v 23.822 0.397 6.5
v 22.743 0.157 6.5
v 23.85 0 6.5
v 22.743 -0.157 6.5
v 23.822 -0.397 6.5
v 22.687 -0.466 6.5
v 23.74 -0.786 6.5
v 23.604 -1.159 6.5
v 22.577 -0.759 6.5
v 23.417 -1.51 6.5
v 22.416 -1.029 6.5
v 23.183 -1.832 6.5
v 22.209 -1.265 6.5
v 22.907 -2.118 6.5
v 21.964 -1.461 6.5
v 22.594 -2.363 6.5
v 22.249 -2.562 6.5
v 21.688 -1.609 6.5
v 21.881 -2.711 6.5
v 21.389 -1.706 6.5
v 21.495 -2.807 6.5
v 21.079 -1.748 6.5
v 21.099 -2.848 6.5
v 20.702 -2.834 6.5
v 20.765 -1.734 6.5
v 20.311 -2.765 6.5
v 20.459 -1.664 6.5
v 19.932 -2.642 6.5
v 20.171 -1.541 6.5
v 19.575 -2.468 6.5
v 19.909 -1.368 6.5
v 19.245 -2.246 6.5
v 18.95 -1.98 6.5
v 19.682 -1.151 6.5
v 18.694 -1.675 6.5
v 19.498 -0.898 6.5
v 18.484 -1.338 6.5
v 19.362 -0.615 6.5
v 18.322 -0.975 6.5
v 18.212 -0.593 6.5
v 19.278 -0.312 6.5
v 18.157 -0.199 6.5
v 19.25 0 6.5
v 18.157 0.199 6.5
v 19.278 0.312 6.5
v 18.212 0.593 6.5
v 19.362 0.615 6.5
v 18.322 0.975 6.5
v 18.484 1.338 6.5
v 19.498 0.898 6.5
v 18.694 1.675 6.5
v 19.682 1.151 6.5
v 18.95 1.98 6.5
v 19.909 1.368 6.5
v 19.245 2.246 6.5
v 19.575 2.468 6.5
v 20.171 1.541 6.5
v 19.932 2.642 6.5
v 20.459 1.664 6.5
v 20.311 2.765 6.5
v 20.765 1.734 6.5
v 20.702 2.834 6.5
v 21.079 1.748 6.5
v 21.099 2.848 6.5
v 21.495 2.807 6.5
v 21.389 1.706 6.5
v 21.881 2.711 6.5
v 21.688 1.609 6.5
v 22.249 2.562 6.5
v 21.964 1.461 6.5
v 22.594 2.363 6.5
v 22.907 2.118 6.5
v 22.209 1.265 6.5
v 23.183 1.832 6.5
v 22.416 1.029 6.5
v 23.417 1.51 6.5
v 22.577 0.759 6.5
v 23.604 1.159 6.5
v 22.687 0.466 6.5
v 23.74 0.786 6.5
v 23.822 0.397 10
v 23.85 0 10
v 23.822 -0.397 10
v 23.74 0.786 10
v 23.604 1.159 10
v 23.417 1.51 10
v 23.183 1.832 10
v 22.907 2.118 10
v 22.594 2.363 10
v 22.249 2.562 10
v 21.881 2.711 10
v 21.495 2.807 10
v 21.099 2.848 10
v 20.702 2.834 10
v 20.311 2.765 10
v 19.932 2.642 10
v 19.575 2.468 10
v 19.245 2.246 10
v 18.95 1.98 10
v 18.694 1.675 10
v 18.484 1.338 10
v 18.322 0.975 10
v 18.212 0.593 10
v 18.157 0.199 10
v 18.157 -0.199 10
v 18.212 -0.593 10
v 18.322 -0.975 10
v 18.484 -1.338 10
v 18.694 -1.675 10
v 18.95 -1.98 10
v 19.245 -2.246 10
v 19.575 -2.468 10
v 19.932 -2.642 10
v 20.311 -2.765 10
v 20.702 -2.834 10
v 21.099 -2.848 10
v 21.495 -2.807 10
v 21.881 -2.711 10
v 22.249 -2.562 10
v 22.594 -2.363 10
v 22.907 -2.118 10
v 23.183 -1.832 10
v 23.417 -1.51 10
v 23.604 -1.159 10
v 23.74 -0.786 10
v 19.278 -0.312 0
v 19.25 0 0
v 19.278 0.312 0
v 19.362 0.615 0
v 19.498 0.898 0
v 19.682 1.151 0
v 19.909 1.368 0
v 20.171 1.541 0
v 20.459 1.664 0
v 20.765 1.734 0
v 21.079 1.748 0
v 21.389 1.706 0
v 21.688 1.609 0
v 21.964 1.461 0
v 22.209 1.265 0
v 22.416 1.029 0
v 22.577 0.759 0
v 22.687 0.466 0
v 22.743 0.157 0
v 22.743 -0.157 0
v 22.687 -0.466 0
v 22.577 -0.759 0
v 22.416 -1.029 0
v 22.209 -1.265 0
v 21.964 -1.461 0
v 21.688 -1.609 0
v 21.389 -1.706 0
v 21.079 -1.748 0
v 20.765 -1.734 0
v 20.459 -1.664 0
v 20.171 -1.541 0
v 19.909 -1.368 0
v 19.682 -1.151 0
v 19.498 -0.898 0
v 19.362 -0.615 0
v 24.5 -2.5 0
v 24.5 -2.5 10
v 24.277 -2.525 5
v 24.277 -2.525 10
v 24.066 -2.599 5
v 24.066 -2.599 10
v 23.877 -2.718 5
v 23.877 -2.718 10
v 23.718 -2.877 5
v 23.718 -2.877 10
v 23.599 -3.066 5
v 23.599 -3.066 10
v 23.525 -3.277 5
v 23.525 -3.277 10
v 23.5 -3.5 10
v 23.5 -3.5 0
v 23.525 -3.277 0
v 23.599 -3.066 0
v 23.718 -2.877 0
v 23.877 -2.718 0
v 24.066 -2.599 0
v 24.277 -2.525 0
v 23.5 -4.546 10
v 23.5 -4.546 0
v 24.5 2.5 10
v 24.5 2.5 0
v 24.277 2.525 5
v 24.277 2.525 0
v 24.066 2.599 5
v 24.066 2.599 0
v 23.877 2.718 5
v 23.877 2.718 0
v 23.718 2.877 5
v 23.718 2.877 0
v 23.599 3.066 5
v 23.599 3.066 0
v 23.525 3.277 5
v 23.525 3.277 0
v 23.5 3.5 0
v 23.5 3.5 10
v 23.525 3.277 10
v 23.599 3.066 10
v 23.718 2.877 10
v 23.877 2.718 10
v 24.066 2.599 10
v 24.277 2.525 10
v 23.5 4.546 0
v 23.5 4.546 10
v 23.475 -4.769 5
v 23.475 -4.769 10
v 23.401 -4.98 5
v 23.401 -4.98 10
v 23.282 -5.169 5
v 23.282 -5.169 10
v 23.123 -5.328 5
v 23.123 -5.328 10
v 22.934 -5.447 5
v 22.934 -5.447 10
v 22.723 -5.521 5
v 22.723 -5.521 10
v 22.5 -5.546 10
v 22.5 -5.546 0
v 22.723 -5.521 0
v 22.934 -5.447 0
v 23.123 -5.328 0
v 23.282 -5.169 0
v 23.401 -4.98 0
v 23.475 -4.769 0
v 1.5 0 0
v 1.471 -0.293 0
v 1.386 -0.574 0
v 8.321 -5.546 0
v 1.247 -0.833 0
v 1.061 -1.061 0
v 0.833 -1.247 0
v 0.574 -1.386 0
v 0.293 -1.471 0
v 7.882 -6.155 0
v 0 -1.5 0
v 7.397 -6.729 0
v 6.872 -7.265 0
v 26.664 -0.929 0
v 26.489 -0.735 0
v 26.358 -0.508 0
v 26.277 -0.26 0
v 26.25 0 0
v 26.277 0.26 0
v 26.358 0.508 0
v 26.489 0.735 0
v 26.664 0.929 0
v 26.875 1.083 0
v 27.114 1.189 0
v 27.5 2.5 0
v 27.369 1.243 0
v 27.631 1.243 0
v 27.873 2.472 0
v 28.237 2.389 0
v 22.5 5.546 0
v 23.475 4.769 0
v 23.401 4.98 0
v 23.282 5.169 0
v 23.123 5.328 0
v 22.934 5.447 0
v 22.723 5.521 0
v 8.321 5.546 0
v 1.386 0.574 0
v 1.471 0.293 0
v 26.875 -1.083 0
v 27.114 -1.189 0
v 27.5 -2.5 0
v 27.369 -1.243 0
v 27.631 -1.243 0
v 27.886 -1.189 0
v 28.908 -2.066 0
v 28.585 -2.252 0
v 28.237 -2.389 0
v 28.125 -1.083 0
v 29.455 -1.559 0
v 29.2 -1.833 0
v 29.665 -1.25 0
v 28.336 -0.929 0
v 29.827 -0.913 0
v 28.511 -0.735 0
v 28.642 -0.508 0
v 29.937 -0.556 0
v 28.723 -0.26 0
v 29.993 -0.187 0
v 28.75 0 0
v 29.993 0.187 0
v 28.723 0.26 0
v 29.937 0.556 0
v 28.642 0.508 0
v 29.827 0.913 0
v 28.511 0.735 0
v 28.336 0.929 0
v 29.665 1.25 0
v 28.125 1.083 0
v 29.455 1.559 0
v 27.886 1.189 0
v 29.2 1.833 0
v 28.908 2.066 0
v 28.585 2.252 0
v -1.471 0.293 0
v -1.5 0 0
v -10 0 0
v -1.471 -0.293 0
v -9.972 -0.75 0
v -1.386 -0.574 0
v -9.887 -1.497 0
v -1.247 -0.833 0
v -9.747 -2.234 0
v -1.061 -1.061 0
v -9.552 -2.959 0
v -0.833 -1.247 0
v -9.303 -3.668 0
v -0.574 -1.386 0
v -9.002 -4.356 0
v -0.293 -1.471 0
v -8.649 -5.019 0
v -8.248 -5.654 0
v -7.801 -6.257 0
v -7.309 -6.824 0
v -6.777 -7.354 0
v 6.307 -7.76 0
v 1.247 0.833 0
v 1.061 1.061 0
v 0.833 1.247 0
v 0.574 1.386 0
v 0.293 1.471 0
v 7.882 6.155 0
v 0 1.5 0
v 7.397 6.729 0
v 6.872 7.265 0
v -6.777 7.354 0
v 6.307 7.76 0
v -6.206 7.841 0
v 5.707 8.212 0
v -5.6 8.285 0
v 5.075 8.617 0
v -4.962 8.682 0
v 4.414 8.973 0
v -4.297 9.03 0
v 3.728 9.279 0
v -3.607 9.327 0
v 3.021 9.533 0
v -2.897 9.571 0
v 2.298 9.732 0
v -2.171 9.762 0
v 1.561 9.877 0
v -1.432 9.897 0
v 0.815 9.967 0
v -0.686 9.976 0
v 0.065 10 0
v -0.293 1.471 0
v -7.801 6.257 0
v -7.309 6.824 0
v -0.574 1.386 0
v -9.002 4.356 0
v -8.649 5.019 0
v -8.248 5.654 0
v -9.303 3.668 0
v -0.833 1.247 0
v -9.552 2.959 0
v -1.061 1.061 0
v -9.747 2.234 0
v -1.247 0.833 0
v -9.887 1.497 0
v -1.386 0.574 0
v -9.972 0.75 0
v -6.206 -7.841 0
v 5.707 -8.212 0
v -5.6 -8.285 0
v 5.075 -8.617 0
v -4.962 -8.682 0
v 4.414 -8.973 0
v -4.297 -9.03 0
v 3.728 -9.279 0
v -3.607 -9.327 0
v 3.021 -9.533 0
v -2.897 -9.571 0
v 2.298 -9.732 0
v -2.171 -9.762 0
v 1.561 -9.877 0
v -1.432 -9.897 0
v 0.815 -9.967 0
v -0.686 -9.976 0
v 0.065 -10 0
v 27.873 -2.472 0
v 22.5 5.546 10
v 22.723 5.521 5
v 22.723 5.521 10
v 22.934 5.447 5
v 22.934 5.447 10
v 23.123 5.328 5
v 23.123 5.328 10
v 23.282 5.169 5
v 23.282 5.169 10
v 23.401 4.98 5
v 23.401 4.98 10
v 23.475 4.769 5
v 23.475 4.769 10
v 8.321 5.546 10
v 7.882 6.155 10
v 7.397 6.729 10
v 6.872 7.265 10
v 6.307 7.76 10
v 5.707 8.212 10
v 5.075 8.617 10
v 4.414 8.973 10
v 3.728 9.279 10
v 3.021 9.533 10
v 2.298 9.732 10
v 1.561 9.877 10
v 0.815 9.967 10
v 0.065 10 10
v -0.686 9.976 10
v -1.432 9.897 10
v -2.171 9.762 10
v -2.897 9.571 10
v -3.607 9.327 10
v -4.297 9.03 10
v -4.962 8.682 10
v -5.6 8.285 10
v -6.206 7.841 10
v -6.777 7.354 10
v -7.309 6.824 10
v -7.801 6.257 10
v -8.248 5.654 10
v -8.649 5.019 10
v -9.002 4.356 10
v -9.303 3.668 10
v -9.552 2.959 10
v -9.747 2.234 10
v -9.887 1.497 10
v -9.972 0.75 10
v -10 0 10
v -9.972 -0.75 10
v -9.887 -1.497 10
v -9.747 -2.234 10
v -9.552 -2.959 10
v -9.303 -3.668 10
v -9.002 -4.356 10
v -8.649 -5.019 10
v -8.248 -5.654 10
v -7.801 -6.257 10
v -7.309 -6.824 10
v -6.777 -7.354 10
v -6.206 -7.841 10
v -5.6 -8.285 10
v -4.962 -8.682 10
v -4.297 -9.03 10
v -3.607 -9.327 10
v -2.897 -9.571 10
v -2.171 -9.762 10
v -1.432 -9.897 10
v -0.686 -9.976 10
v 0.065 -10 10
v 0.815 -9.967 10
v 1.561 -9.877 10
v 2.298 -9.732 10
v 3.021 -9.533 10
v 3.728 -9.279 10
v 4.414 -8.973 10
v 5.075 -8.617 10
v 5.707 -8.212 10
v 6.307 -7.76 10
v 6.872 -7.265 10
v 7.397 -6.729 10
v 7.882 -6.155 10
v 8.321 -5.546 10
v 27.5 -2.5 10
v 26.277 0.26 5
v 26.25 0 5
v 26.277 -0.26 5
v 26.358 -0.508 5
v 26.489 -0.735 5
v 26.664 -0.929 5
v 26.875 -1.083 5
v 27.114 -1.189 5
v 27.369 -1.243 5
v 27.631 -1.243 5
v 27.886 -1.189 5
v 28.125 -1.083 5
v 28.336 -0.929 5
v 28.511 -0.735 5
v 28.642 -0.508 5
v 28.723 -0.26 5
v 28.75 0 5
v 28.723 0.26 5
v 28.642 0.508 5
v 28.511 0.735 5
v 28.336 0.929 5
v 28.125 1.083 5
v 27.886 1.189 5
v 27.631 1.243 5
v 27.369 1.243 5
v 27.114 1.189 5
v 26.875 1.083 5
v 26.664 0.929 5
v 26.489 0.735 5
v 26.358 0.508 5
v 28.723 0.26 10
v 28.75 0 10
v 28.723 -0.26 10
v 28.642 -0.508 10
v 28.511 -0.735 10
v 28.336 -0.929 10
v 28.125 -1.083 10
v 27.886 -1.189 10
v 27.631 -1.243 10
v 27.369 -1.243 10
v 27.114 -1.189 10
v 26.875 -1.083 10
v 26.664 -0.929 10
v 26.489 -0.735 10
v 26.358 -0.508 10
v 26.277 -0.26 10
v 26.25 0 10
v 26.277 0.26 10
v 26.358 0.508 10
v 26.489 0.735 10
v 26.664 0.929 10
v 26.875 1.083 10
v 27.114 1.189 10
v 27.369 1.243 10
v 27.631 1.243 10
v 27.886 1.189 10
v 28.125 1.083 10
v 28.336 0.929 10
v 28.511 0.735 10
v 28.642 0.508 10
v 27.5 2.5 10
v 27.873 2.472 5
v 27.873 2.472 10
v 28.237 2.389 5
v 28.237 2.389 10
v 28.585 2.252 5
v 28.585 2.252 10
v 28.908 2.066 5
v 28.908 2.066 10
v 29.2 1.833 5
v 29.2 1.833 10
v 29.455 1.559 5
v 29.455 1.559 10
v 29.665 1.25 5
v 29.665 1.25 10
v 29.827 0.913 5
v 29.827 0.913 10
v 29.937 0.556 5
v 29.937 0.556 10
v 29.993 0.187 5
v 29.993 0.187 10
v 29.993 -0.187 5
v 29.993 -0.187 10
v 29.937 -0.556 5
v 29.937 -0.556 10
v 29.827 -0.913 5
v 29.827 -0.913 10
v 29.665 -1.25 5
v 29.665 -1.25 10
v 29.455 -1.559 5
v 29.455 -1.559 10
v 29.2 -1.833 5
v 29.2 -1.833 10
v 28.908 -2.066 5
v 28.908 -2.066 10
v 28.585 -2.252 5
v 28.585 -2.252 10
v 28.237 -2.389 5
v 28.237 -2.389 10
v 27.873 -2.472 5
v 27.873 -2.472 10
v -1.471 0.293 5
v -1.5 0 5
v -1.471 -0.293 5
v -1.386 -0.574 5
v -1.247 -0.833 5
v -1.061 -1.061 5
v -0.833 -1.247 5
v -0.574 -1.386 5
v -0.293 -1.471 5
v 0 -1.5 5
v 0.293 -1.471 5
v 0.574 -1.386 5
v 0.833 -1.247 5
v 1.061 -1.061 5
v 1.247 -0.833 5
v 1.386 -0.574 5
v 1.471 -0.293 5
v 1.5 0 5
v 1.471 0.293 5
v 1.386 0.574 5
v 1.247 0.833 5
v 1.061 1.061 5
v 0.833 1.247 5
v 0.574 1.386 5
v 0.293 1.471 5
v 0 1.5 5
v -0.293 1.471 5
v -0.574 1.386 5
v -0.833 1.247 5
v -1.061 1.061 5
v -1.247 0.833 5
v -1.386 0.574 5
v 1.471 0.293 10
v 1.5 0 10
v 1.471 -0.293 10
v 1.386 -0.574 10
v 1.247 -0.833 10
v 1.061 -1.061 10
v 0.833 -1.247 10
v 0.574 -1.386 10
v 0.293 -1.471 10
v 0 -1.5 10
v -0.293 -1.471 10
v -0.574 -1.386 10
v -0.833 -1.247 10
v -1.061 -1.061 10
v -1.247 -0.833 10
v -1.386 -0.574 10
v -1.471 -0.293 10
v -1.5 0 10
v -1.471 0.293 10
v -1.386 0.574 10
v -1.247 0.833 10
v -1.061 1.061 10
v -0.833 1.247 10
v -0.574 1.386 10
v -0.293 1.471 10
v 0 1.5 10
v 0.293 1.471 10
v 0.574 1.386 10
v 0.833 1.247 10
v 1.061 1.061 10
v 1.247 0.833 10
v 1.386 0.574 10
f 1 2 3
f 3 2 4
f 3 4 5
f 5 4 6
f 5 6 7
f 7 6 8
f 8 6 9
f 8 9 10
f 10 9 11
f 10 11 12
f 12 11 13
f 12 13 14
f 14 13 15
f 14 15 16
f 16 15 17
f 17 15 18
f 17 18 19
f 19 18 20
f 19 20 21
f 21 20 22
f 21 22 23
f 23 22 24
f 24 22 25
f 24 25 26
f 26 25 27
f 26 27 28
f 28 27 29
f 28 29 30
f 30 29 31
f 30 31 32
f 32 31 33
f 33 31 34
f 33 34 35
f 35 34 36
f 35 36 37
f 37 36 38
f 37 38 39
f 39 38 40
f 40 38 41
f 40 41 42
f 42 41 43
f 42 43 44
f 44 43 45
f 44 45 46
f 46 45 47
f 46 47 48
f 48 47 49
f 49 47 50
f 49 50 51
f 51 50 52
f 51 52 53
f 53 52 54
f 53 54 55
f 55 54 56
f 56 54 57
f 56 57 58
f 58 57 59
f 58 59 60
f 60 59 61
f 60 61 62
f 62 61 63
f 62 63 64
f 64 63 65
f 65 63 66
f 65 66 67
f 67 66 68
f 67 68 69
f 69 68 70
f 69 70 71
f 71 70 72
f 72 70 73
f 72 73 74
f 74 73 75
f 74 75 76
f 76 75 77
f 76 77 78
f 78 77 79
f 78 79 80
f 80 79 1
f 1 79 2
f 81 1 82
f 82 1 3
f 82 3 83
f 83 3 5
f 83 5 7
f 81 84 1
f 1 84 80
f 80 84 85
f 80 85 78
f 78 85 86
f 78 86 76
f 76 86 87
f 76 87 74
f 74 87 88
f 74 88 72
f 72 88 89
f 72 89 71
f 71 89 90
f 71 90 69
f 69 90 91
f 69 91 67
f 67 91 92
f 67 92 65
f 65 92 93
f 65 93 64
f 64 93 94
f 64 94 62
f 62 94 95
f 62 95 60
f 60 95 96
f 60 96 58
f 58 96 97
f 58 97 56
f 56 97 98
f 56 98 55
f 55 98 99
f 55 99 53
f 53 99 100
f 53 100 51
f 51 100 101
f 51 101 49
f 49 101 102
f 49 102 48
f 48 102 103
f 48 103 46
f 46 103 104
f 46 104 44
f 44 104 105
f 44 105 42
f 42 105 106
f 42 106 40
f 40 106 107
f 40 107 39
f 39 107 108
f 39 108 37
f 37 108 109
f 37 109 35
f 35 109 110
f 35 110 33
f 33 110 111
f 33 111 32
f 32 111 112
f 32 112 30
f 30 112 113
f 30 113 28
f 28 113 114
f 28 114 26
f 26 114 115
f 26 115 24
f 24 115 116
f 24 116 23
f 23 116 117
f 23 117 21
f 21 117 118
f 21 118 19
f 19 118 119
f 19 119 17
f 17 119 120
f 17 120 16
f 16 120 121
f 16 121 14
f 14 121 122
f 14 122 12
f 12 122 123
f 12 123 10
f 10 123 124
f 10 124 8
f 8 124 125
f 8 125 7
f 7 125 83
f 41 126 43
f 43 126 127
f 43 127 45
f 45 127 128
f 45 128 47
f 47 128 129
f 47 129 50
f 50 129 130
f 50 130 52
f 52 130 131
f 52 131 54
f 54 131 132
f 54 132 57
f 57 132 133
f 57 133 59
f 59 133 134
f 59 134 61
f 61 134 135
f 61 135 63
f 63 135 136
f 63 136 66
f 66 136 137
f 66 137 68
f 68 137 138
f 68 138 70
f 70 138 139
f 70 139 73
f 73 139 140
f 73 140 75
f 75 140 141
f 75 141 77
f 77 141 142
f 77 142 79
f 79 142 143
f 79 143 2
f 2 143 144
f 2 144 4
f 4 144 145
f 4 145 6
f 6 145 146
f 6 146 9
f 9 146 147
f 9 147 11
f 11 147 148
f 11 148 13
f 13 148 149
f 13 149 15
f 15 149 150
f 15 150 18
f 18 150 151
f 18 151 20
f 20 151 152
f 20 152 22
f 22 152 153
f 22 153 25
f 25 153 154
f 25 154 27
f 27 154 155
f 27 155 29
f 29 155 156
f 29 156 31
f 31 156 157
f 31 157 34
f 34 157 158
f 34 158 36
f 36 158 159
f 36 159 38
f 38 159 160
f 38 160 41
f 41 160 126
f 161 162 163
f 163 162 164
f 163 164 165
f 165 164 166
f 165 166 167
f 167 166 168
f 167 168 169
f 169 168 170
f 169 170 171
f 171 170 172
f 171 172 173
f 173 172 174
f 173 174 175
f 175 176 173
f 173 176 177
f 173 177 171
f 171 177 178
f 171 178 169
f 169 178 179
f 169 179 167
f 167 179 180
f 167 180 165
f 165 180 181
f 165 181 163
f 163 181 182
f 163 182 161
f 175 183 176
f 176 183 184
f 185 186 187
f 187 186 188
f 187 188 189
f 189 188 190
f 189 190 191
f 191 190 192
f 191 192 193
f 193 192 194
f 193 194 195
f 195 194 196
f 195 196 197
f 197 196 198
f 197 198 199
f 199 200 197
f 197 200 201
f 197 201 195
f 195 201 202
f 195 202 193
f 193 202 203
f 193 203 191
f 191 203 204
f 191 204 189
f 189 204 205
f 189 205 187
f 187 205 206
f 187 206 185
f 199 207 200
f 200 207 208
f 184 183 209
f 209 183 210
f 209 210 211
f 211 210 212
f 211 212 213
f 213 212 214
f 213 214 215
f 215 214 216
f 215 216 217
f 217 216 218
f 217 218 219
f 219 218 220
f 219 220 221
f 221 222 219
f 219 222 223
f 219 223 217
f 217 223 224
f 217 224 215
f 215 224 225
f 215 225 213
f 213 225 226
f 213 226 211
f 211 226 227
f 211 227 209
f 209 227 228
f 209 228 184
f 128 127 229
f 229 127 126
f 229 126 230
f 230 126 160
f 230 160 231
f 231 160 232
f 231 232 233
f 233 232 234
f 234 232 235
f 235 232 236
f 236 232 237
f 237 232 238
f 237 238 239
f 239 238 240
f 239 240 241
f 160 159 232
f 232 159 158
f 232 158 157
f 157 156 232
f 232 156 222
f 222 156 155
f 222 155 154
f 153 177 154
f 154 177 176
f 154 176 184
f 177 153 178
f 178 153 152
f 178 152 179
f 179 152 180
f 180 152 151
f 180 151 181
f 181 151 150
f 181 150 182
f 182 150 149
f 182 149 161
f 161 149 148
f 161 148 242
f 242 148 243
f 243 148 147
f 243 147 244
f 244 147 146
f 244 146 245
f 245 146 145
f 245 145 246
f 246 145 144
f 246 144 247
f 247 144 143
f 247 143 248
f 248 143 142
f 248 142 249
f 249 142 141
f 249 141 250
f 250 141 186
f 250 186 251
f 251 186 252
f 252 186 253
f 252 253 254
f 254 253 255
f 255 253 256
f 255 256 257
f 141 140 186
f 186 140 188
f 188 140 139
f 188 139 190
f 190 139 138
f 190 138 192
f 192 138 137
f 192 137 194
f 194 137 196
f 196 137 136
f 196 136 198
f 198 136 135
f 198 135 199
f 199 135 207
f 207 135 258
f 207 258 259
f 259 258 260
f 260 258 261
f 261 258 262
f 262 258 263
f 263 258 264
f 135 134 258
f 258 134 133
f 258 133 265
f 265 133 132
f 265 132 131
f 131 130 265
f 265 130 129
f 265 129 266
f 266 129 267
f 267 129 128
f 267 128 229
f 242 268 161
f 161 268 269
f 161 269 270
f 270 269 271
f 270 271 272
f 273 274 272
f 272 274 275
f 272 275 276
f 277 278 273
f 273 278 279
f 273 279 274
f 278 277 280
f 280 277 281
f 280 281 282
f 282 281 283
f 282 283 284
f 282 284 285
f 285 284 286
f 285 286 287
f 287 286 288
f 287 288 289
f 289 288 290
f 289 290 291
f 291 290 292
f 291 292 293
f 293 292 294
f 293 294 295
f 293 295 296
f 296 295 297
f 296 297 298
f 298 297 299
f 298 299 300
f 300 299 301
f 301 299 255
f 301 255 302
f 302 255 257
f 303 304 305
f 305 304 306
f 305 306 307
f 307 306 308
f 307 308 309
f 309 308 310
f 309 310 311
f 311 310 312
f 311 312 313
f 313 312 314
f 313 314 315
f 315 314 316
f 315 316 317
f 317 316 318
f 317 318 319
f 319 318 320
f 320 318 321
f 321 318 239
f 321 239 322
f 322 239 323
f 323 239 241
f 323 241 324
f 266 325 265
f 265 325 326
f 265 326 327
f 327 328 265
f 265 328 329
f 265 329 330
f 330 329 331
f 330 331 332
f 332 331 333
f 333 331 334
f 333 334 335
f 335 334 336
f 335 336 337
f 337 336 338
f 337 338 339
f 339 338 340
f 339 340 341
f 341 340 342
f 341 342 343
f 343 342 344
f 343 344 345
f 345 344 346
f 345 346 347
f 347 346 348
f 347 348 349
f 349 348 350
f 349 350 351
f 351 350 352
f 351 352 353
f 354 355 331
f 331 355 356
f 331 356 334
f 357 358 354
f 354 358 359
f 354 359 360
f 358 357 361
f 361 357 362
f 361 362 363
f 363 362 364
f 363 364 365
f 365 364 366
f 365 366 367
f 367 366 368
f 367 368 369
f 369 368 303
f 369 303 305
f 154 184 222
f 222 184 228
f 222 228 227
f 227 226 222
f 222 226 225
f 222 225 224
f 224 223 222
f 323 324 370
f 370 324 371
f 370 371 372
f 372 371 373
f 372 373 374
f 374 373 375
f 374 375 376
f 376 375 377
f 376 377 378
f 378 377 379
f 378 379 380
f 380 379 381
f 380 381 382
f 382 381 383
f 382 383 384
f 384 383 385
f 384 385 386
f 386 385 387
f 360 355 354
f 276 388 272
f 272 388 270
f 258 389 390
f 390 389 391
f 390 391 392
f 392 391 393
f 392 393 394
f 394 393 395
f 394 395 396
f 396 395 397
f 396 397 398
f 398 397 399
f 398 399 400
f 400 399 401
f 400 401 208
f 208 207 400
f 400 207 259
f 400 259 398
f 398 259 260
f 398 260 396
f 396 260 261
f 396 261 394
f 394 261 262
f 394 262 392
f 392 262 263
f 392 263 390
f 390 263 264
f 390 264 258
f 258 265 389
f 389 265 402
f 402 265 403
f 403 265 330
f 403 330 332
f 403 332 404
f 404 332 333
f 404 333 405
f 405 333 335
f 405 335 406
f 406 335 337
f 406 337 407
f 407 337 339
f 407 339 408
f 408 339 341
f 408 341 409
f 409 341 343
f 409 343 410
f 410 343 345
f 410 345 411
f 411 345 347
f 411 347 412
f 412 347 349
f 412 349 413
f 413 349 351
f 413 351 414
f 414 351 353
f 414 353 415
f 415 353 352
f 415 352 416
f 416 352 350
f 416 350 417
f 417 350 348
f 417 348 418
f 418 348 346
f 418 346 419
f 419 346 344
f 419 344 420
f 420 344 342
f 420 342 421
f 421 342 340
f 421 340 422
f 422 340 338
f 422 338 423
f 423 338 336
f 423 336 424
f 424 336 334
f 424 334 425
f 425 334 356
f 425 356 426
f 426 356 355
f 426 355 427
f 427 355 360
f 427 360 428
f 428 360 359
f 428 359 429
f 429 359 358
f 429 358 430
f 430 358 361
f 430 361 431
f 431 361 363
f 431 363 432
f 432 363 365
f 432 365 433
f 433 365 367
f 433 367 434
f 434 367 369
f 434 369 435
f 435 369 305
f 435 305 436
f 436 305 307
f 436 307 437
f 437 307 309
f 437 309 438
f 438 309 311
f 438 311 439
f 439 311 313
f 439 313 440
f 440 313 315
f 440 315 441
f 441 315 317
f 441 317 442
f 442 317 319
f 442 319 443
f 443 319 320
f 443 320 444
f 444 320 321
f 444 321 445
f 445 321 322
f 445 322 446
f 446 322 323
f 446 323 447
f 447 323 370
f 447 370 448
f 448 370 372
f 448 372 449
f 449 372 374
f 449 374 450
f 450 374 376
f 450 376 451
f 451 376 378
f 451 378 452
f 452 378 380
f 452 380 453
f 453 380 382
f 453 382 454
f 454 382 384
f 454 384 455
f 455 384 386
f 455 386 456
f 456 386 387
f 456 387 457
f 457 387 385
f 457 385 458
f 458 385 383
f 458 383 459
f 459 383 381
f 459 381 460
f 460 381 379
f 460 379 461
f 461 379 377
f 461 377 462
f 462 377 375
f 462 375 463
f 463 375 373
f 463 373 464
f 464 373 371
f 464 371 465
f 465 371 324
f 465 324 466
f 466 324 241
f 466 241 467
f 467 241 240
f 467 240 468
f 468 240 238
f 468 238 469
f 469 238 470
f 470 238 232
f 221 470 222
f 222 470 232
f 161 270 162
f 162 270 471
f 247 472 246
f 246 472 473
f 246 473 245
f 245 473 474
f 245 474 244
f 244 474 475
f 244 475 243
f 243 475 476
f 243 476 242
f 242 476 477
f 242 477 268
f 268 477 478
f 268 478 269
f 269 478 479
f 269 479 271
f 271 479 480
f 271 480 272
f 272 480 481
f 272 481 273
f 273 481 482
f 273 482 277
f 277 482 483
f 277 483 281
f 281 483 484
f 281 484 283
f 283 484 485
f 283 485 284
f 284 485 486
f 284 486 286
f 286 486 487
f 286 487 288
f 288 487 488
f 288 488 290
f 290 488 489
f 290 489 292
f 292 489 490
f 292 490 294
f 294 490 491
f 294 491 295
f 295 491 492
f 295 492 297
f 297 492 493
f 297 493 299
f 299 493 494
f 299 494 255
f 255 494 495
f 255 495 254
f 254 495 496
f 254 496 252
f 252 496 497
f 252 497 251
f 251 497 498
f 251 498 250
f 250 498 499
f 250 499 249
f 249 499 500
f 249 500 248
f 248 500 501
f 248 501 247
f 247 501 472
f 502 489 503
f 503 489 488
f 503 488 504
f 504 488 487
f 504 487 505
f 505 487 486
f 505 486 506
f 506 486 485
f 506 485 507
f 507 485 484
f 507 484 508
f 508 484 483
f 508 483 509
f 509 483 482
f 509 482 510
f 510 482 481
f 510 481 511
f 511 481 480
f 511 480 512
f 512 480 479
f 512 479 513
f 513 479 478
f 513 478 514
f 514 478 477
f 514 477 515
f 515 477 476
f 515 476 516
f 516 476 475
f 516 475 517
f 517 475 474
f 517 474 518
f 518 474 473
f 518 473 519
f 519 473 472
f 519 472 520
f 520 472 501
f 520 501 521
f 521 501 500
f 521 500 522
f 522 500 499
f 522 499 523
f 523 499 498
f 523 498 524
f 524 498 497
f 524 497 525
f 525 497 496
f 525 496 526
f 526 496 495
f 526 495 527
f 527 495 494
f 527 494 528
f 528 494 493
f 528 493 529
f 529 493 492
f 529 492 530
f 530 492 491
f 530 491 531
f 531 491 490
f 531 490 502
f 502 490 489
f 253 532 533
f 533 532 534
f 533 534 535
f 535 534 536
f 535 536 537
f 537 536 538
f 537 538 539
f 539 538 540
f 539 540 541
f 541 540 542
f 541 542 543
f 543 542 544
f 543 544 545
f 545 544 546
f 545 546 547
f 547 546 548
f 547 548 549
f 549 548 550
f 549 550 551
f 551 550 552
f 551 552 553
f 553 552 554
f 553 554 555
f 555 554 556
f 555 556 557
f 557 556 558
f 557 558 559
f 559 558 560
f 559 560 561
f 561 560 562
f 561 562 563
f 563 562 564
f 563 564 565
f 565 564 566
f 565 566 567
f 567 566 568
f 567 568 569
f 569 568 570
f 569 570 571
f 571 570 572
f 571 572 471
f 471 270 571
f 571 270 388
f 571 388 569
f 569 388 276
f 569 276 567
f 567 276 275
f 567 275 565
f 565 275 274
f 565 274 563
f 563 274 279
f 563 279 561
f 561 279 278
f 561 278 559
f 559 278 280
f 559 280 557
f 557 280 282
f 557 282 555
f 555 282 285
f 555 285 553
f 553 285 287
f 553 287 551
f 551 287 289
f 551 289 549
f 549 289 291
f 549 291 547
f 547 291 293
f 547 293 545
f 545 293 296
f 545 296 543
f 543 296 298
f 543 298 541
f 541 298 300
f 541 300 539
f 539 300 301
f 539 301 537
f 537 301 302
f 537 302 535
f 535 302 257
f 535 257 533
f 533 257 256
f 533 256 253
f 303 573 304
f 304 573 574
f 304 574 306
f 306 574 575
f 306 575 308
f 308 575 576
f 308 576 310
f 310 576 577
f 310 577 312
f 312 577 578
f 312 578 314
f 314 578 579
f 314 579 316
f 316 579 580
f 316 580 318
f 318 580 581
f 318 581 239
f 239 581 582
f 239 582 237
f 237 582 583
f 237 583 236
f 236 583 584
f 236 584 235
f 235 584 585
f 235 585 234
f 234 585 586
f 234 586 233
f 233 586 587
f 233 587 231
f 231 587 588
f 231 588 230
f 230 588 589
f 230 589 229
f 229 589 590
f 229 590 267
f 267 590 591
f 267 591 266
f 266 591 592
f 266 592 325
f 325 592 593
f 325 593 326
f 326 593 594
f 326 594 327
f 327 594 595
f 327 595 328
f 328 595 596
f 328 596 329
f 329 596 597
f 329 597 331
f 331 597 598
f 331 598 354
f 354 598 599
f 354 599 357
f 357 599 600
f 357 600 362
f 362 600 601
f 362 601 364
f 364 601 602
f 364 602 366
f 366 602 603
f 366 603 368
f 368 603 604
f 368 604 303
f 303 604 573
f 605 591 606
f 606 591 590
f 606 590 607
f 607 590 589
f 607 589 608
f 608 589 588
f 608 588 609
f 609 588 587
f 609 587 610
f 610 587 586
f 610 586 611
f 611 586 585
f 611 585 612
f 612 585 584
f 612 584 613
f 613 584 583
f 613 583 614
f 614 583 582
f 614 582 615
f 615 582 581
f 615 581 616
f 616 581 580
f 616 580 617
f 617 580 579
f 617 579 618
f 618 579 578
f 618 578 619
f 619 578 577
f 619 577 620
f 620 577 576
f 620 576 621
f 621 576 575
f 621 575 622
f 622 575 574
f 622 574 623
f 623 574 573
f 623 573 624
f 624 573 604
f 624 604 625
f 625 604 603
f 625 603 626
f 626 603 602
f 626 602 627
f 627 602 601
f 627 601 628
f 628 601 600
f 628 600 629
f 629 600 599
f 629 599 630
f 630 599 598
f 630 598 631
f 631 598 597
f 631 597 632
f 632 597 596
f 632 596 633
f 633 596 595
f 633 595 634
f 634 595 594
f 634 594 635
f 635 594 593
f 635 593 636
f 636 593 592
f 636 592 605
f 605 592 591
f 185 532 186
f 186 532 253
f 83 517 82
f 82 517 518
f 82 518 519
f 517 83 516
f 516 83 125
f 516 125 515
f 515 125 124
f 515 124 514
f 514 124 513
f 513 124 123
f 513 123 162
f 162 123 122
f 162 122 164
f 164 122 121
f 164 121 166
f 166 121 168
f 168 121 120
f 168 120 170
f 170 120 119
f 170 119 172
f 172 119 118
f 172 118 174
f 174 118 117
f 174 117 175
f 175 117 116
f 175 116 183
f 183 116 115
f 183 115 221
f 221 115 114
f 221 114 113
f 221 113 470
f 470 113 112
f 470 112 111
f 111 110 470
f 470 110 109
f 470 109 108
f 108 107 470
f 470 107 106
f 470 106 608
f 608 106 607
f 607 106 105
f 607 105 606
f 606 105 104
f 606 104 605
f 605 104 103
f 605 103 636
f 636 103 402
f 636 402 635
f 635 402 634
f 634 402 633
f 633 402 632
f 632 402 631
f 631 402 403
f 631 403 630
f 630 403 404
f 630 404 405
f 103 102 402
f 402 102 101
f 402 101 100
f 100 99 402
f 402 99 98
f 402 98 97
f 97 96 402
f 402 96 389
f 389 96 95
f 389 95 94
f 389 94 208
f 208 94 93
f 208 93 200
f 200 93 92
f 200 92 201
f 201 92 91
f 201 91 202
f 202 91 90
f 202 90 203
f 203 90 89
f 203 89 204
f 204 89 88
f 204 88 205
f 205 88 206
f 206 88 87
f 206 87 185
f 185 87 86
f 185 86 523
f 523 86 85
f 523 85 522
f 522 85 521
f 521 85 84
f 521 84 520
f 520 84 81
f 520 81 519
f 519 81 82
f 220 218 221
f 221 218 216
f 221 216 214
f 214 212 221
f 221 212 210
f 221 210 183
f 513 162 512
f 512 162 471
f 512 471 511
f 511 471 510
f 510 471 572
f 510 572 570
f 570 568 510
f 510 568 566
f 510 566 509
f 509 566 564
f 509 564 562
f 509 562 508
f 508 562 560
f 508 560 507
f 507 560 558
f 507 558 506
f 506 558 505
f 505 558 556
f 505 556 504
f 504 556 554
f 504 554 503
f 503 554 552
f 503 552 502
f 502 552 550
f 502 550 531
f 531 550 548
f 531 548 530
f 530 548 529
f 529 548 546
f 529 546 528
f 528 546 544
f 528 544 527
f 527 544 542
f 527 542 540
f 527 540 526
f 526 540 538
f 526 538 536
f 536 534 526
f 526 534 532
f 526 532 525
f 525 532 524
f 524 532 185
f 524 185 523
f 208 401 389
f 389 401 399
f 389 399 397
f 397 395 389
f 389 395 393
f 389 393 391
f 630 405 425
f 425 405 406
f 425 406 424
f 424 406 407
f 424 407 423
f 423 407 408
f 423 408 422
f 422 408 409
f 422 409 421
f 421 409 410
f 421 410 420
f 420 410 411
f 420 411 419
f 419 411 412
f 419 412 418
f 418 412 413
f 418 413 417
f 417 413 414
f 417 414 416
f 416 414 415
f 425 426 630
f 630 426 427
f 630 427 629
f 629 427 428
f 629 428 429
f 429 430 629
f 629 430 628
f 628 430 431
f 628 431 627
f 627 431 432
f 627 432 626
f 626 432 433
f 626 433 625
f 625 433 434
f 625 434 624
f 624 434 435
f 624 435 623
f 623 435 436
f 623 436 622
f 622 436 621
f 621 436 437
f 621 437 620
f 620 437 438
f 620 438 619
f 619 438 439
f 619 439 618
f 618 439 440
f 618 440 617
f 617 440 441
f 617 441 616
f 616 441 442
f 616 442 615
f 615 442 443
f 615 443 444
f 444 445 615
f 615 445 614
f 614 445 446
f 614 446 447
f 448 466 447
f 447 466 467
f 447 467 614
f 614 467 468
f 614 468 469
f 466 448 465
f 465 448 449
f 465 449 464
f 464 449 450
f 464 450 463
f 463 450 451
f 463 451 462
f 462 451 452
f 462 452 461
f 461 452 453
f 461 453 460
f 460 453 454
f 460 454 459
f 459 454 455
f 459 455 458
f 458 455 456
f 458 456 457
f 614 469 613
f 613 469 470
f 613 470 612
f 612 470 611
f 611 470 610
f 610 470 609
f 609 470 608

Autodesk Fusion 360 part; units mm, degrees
sketch "Sketch1" plane through (0, 0, 0) normal (0, 0, 1) x (1, 0, 0)
  circle A0 centre (0, 0) radius 10
extrude "Extrude1" add sketch "Sketch1" along normal blind 10
sketch "Sketch2" plane through (0, 0, 0) normal (0, 0, -1) x (1, 0, 0)
  circle A0 centre (0, 0) radius 10
  line L0 (0, 2.5) -> (30, 2.5)
  line L1 (30, 2.5) -> (30, -2.5)
  line L2 (30, -2.5) -> (0, -2.5)
  line L3 (0, -2.5) -> (0, 2.5)
  line L4 (0, 2.5) -> (30, -2.5) construction
  line L5 (30, 2.5) -> (0, -2.5) construction
  line L6 (15, 0) -> (0, 0) construction
  point P0 (15, 0)
  dimension "d19" = 5
  dimension "d20" = 30
extrude "Extrude2" add sketch "Sketch2" against normal up to surface (10 mm away) contours A0 L0 L1 L2
hole "Hole1" at (0, 0, 10) direction (0, 0, -1) diameter 3 end through all
fillet "Fillet1" radius 2.5 2 edges at (30, -2.5, 5) (30, 2.5, 5)
hole "Hole2" at (27.5, 0, 10) direction (0, 0, -1) diameter 2.5 end through all
sketch "Sketch4" plane through (0, 0, 0) normal (0, 0, -1) x (1, 0, 0)
  circle A0 centre (27.5, 0) radius 1.25
  circle A1 centre (0, 0) radius 1.5
  arc A2 (27.5, -2.5) -> (27.5, 2.5) centre (27.5, 0) ccw
  line L0 (27.5, 2.5) -> (9.6825, 2.5)
  arc A3 (9.6825, 2.5) -> (9.6825, -2.5) centre (0, 0) ccw
  line L1 (9.6825, -2.5) -> (27.5, -2.5)
  line L2 (1.5, 5.546) -> (23.5, 5.546)
  line L3 (23.5, 5.546) -> (23.5, -5.546)
  line L4 (23.5, -5.546) -> (1.5, -5.546)
  line L5 (1.5, -5.546) -> (1.5, 5.546)
  line L6 (1.5, 5.546) -> (23.5, -5.546) construction
  line L7 (23.5, 5.546) -> (1.5, -5.546) construction
  line L8 (12.5, 0) -> (23.5, 0) construction
  point P0 (12.5, 0)
  dimension "d35" = 4
extrude "Extrude4" add sketch "Sketch4" against normal up to surface (10 mm away) contours A3 L1 L3 L4 | L0 A3 L2 L3
sketch "Sketch6" plane through (0, 0, 10) normal (0, 0, 1) x (-1, 0, 0)
  line L0 (-23.5, 5.546) -> (-23.5, 2.5)
  line L1 (-23.5, 2.5) -> (-27.5, 2.5)
  arc A0 (-27.5, 2.5) -> (-27.5, -2.5) centre (-27.5, 0) ccw
  line L2 (-27.5, -2.5) -> (-23.5, -2.5)
  line L3 (-23.5, -2.5) -> (-23.5, -5.546)
  line L4 (-23.5, -5.546) -> (-8.3212, -5.546)
  arc A1 (-8.3212, -5.546) -> (-8.3212, 5.546) centre (0, 0) ccw
  line L5 (-8.3212, 5.546) -> (-23.5, 5.546)
  circle A2 centre (-27.5, 0) radius 1.25
  circle A3 centre (0, 0) radius 1.5
  circle A4 centre (-21, 0) radius 1
  dimension "d36" = 2.5
fillet "Fillet2" radius 1 4 edges at (23.5, 5.546, 5) (23.5, -5.546, 5) (23.5, 2.5, 5) (23.5, -2.5, 5)
hole "Hole4" at (21, 0, 10) direction (0, 0, -1) diameter 3.5 end through all counterbore diameter 5.7 counterbore depth 3.5
